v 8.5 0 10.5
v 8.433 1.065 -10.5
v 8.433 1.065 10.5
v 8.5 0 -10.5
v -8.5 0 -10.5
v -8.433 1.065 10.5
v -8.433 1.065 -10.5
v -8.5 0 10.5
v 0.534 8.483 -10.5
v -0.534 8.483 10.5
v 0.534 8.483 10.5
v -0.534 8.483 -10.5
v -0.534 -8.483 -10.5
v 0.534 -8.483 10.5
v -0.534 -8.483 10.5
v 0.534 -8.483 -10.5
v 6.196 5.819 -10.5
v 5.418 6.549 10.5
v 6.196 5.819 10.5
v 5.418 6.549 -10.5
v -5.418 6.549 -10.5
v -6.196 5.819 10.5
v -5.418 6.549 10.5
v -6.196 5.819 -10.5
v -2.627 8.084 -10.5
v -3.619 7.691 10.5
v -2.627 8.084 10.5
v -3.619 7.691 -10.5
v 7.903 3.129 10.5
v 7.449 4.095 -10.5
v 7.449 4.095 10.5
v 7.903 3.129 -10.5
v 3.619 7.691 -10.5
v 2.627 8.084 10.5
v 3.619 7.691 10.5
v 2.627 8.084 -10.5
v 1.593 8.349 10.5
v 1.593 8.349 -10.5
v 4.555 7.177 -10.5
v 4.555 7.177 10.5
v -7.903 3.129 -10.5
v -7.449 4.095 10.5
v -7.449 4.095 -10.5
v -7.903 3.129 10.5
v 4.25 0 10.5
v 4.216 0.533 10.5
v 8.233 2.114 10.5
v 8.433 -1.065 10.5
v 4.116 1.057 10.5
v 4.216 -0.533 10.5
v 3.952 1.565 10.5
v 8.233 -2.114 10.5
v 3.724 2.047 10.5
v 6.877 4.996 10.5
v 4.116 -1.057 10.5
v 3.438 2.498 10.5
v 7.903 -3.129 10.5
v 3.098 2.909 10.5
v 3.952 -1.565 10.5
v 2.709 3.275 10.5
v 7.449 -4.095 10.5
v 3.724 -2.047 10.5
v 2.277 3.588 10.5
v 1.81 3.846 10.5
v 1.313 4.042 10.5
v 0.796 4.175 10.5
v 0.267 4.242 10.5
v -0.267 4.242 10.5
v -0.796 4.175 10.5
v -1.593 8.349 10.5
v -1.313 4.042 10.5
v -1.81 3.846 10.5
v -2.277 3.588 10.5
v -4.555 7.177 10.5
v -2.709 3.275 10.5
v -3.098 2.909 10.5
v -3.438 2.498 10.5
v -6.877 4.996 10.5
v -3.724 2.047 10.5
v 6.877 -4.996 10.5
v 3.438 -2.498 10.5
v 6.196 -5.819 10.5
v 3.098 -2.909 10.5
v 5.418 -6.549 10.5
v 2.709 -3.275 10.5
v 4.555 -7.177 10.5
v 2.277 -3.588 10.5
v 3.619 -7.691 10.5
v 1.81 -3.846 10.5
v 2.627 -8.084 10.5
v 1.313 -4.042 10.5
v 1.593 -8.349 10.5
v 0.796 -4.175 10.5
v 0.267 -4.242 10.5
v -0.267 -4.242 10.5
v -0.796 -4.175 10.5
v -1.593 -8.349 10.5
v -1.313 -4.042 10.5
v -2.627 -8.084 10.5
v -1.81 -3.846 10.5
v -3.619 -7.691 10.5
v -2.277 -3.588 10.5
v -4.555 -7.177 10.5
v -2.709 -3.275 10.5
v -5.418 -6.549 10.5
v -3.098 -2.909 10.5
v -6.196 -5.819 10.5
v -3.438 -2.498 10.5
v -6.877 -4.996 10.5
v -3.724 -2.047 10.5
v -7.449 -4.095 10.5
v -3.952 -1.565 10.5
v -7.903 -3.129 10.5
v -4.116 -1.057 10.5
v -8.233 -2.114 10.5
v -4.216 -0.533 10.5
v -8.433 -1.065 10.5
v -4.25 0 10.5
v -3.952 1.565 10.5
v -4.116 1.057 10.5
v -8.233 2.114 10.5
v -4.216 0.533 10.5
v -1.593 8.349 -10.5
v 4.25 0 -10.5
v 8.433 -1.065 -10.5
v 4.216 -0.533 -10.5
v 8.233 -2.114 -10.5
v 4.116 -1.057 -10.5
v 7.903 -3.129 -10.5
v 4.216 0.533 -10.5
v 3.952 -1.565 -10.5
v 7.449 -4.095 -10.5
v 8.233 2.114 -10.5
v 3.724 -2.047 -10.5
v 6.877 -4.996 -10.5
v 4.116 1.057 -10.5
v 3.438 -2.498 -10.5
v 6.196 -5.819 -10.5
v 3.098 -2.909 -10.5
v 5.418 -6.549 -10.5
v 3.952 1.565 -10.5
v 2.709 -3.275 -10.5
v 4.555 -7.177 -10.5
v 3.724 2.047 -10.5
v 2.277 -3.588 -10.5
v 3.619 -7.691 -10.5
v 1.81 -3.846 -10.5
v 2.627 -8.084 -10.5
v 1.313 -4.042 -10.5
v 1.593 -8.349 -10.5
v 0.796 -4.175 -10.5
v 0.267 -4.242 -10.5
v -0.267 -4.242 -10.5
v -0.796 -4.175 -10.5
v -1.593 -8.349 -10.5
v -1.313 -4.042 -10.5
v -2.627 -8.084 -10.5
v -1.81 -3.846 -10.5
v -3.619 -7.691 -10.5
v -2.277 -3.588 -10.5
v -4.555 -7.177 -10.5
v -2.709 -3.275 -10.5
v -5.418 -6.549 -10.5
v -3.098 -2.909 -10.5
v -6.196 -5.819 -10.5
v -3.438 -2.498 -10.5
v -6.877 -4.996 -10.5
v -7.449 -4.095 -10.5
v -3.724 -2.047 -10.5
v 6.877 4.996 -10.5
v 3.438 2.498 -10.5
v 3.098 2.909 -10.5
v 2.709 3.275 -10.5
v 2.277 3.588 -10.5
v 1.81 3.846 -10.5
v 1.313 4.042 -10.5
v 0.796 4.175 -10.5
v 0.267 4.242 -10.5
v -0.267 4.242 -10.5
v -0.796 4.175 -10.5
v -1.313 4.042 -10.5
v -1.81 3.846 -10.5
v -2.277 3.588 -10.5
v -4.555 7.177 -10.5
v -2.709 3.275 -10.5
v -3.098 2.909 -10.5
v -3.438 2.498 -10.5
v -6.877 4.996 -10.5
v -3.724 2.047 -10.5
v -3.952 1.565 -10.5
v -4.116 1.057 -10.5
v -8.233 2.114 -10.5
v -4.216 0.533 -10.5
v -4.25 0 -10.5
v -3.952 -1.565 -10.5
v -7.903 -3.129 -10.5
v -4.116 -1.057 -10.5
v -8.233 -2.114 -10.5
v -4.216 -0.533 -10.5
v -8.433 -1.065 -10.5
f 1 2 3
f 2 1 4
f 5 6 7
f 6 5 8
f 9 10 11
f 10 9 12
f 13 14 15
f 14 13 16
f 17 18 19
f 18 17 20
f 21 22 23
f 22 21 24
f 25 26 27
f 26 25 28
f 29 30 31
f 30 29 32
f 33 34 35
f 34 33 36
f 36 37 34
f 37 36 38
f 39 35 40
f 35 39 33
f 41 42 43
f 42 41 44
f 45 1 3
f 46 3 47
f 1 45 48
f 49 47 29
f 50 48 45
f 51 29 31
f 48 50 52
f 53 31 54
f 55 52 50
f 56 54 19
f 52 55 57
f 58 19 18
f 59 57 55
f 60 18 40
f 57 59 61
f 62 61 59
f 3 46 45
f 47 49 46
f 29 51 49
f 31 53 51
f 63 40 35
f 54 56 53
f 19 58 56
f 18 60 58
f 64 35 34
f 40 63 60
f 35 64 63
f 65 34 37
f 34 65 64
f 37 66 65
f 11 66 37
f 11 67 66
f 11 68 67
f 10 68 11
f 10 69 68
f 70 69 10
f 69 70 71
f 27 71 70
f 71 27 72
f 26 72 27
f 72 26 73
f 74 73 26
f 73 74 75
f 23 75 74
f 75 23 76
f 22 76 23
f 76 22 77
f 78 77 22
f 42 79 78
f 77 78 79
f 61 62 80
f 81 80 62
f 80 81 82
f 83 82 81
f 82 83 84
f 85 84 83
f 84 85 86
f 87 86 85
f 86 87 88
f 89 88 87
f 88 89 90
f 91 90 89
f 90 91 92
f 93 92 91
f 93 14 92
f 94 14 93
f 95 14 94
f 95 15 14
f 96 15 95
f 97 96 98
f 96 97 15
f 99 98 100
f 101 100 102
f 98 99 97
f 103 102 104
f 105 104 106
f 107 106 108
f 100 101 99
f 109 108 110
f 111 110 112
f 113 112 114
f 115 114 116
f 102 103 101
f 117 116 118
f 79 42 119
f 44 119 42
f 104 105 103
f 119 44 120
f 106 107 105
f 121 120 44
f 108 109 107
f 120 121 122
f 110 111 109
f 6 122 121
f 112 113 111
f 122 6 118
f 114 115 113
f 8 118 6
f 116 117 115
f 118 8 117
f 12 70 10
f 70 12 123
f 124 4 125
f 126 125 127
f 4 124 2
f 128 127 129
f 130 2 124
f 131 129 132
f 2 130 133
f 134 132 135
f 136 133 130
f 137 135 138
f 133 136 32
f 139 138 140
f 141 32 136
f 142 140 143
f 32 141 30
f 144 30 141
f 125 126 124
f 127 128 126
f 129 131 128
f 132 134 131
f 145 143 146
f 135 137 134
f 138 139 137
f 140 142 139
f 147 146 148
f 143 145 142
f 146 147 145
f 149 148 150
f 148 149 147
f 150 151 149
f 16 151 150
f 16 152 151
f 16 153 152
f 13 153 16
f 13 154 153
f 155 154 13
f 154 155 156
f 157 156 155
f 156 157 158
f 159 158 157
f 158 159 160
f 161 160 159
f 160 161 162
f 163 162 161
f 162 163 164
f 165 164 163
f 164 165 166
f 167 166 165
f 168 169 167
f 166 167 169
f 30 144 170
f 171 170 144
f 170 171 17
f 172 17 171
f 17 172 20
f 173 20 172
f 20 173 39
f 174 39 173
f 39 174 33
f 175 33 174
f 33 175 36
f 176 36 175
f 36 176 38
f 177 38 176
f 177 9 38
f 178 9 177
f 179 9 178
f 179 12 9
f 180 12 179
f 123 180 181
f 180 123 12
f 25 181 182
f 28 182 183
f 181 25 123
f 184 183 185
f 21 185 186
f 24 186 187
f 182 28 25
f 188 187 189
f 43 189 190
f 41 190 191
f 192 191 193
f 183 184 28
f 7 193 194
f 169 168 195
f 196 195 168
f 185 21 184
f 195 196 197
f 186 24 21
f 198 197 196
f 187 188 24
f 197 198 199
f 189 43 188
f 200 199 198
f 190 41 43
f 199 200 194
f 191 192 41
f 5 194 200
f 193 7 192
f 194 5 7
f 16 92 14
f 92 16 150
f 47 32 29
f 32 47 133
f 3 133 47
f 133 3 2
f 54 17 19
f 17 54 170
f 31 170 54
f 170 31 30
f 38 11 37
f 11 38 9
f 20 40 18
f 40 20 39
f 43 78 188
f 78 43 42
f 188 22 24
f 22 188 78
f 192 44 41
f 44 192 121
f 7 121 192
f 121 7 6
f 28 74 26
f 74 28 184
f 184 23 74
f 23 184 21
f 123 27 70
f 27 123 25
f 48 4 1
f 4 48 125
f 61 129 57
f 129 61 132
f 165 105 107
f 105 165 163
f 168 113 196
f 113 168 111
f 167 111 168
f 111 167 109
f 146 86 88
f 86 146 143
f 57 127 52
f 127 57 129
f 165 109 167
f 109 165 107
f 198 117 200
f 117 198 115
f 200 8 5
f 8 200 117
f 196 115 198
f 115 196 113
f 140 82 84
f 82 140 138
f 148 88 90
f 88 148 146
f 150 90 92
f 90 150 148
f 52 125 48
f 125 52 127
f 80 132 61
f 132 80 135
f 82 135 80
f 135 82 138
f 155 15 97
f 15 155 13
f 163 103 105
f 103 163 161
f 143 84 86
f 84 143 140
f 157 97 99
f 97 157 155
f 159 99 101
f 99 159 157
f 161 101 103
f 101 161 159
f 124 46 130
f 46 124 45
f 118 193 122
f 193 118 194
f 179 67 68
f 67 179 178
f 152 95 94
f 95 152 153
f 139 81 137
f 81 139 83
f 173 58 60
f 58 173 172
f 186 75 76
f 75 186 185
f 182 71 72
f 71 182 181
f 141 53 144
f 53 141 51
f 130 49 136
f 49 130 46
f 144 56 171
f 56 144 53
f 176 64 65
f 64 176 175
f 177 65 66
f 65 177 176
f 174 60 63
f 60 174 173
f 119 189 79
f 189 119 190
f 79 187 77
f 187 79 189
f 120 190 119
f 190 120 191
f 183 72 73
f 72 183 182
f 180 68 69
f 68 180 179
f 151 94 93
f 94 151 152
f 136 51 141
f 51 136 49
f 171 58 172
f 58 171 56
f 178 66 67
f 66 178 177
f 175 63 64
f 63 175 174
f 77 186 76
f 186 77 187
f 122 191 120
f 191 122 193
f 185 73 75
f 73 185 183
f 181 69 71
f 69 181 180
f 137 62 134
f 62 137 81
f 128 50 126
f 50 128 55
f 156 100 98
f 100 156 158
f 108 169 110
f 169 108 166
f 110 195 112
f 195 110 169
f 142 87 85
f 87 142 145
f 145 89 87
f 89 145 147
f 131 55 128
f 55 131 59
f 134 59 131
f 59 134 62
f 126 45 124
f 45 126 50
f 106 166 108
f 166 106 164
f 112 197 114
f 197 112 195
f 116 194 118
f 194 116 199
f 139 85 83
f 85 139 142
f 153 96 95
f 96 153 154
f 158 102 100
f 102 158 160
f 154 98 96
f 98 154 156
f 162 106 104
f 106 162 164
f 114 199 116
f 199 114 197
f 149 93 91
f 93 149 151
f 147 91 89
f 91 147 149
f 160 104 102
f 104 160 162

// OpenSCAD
$fn = 50;


difference() {
	union() {
		translate(v = [0, 0, -10.5000000000]) {
			cylinder(h = 21, r = 8.5000000000);
		}
	}
	union() {
		translate(v = [0, 0, -100.0000000000]) {
			cylinder(h = 200, r = 4.2500000000);
		}
	}
}
